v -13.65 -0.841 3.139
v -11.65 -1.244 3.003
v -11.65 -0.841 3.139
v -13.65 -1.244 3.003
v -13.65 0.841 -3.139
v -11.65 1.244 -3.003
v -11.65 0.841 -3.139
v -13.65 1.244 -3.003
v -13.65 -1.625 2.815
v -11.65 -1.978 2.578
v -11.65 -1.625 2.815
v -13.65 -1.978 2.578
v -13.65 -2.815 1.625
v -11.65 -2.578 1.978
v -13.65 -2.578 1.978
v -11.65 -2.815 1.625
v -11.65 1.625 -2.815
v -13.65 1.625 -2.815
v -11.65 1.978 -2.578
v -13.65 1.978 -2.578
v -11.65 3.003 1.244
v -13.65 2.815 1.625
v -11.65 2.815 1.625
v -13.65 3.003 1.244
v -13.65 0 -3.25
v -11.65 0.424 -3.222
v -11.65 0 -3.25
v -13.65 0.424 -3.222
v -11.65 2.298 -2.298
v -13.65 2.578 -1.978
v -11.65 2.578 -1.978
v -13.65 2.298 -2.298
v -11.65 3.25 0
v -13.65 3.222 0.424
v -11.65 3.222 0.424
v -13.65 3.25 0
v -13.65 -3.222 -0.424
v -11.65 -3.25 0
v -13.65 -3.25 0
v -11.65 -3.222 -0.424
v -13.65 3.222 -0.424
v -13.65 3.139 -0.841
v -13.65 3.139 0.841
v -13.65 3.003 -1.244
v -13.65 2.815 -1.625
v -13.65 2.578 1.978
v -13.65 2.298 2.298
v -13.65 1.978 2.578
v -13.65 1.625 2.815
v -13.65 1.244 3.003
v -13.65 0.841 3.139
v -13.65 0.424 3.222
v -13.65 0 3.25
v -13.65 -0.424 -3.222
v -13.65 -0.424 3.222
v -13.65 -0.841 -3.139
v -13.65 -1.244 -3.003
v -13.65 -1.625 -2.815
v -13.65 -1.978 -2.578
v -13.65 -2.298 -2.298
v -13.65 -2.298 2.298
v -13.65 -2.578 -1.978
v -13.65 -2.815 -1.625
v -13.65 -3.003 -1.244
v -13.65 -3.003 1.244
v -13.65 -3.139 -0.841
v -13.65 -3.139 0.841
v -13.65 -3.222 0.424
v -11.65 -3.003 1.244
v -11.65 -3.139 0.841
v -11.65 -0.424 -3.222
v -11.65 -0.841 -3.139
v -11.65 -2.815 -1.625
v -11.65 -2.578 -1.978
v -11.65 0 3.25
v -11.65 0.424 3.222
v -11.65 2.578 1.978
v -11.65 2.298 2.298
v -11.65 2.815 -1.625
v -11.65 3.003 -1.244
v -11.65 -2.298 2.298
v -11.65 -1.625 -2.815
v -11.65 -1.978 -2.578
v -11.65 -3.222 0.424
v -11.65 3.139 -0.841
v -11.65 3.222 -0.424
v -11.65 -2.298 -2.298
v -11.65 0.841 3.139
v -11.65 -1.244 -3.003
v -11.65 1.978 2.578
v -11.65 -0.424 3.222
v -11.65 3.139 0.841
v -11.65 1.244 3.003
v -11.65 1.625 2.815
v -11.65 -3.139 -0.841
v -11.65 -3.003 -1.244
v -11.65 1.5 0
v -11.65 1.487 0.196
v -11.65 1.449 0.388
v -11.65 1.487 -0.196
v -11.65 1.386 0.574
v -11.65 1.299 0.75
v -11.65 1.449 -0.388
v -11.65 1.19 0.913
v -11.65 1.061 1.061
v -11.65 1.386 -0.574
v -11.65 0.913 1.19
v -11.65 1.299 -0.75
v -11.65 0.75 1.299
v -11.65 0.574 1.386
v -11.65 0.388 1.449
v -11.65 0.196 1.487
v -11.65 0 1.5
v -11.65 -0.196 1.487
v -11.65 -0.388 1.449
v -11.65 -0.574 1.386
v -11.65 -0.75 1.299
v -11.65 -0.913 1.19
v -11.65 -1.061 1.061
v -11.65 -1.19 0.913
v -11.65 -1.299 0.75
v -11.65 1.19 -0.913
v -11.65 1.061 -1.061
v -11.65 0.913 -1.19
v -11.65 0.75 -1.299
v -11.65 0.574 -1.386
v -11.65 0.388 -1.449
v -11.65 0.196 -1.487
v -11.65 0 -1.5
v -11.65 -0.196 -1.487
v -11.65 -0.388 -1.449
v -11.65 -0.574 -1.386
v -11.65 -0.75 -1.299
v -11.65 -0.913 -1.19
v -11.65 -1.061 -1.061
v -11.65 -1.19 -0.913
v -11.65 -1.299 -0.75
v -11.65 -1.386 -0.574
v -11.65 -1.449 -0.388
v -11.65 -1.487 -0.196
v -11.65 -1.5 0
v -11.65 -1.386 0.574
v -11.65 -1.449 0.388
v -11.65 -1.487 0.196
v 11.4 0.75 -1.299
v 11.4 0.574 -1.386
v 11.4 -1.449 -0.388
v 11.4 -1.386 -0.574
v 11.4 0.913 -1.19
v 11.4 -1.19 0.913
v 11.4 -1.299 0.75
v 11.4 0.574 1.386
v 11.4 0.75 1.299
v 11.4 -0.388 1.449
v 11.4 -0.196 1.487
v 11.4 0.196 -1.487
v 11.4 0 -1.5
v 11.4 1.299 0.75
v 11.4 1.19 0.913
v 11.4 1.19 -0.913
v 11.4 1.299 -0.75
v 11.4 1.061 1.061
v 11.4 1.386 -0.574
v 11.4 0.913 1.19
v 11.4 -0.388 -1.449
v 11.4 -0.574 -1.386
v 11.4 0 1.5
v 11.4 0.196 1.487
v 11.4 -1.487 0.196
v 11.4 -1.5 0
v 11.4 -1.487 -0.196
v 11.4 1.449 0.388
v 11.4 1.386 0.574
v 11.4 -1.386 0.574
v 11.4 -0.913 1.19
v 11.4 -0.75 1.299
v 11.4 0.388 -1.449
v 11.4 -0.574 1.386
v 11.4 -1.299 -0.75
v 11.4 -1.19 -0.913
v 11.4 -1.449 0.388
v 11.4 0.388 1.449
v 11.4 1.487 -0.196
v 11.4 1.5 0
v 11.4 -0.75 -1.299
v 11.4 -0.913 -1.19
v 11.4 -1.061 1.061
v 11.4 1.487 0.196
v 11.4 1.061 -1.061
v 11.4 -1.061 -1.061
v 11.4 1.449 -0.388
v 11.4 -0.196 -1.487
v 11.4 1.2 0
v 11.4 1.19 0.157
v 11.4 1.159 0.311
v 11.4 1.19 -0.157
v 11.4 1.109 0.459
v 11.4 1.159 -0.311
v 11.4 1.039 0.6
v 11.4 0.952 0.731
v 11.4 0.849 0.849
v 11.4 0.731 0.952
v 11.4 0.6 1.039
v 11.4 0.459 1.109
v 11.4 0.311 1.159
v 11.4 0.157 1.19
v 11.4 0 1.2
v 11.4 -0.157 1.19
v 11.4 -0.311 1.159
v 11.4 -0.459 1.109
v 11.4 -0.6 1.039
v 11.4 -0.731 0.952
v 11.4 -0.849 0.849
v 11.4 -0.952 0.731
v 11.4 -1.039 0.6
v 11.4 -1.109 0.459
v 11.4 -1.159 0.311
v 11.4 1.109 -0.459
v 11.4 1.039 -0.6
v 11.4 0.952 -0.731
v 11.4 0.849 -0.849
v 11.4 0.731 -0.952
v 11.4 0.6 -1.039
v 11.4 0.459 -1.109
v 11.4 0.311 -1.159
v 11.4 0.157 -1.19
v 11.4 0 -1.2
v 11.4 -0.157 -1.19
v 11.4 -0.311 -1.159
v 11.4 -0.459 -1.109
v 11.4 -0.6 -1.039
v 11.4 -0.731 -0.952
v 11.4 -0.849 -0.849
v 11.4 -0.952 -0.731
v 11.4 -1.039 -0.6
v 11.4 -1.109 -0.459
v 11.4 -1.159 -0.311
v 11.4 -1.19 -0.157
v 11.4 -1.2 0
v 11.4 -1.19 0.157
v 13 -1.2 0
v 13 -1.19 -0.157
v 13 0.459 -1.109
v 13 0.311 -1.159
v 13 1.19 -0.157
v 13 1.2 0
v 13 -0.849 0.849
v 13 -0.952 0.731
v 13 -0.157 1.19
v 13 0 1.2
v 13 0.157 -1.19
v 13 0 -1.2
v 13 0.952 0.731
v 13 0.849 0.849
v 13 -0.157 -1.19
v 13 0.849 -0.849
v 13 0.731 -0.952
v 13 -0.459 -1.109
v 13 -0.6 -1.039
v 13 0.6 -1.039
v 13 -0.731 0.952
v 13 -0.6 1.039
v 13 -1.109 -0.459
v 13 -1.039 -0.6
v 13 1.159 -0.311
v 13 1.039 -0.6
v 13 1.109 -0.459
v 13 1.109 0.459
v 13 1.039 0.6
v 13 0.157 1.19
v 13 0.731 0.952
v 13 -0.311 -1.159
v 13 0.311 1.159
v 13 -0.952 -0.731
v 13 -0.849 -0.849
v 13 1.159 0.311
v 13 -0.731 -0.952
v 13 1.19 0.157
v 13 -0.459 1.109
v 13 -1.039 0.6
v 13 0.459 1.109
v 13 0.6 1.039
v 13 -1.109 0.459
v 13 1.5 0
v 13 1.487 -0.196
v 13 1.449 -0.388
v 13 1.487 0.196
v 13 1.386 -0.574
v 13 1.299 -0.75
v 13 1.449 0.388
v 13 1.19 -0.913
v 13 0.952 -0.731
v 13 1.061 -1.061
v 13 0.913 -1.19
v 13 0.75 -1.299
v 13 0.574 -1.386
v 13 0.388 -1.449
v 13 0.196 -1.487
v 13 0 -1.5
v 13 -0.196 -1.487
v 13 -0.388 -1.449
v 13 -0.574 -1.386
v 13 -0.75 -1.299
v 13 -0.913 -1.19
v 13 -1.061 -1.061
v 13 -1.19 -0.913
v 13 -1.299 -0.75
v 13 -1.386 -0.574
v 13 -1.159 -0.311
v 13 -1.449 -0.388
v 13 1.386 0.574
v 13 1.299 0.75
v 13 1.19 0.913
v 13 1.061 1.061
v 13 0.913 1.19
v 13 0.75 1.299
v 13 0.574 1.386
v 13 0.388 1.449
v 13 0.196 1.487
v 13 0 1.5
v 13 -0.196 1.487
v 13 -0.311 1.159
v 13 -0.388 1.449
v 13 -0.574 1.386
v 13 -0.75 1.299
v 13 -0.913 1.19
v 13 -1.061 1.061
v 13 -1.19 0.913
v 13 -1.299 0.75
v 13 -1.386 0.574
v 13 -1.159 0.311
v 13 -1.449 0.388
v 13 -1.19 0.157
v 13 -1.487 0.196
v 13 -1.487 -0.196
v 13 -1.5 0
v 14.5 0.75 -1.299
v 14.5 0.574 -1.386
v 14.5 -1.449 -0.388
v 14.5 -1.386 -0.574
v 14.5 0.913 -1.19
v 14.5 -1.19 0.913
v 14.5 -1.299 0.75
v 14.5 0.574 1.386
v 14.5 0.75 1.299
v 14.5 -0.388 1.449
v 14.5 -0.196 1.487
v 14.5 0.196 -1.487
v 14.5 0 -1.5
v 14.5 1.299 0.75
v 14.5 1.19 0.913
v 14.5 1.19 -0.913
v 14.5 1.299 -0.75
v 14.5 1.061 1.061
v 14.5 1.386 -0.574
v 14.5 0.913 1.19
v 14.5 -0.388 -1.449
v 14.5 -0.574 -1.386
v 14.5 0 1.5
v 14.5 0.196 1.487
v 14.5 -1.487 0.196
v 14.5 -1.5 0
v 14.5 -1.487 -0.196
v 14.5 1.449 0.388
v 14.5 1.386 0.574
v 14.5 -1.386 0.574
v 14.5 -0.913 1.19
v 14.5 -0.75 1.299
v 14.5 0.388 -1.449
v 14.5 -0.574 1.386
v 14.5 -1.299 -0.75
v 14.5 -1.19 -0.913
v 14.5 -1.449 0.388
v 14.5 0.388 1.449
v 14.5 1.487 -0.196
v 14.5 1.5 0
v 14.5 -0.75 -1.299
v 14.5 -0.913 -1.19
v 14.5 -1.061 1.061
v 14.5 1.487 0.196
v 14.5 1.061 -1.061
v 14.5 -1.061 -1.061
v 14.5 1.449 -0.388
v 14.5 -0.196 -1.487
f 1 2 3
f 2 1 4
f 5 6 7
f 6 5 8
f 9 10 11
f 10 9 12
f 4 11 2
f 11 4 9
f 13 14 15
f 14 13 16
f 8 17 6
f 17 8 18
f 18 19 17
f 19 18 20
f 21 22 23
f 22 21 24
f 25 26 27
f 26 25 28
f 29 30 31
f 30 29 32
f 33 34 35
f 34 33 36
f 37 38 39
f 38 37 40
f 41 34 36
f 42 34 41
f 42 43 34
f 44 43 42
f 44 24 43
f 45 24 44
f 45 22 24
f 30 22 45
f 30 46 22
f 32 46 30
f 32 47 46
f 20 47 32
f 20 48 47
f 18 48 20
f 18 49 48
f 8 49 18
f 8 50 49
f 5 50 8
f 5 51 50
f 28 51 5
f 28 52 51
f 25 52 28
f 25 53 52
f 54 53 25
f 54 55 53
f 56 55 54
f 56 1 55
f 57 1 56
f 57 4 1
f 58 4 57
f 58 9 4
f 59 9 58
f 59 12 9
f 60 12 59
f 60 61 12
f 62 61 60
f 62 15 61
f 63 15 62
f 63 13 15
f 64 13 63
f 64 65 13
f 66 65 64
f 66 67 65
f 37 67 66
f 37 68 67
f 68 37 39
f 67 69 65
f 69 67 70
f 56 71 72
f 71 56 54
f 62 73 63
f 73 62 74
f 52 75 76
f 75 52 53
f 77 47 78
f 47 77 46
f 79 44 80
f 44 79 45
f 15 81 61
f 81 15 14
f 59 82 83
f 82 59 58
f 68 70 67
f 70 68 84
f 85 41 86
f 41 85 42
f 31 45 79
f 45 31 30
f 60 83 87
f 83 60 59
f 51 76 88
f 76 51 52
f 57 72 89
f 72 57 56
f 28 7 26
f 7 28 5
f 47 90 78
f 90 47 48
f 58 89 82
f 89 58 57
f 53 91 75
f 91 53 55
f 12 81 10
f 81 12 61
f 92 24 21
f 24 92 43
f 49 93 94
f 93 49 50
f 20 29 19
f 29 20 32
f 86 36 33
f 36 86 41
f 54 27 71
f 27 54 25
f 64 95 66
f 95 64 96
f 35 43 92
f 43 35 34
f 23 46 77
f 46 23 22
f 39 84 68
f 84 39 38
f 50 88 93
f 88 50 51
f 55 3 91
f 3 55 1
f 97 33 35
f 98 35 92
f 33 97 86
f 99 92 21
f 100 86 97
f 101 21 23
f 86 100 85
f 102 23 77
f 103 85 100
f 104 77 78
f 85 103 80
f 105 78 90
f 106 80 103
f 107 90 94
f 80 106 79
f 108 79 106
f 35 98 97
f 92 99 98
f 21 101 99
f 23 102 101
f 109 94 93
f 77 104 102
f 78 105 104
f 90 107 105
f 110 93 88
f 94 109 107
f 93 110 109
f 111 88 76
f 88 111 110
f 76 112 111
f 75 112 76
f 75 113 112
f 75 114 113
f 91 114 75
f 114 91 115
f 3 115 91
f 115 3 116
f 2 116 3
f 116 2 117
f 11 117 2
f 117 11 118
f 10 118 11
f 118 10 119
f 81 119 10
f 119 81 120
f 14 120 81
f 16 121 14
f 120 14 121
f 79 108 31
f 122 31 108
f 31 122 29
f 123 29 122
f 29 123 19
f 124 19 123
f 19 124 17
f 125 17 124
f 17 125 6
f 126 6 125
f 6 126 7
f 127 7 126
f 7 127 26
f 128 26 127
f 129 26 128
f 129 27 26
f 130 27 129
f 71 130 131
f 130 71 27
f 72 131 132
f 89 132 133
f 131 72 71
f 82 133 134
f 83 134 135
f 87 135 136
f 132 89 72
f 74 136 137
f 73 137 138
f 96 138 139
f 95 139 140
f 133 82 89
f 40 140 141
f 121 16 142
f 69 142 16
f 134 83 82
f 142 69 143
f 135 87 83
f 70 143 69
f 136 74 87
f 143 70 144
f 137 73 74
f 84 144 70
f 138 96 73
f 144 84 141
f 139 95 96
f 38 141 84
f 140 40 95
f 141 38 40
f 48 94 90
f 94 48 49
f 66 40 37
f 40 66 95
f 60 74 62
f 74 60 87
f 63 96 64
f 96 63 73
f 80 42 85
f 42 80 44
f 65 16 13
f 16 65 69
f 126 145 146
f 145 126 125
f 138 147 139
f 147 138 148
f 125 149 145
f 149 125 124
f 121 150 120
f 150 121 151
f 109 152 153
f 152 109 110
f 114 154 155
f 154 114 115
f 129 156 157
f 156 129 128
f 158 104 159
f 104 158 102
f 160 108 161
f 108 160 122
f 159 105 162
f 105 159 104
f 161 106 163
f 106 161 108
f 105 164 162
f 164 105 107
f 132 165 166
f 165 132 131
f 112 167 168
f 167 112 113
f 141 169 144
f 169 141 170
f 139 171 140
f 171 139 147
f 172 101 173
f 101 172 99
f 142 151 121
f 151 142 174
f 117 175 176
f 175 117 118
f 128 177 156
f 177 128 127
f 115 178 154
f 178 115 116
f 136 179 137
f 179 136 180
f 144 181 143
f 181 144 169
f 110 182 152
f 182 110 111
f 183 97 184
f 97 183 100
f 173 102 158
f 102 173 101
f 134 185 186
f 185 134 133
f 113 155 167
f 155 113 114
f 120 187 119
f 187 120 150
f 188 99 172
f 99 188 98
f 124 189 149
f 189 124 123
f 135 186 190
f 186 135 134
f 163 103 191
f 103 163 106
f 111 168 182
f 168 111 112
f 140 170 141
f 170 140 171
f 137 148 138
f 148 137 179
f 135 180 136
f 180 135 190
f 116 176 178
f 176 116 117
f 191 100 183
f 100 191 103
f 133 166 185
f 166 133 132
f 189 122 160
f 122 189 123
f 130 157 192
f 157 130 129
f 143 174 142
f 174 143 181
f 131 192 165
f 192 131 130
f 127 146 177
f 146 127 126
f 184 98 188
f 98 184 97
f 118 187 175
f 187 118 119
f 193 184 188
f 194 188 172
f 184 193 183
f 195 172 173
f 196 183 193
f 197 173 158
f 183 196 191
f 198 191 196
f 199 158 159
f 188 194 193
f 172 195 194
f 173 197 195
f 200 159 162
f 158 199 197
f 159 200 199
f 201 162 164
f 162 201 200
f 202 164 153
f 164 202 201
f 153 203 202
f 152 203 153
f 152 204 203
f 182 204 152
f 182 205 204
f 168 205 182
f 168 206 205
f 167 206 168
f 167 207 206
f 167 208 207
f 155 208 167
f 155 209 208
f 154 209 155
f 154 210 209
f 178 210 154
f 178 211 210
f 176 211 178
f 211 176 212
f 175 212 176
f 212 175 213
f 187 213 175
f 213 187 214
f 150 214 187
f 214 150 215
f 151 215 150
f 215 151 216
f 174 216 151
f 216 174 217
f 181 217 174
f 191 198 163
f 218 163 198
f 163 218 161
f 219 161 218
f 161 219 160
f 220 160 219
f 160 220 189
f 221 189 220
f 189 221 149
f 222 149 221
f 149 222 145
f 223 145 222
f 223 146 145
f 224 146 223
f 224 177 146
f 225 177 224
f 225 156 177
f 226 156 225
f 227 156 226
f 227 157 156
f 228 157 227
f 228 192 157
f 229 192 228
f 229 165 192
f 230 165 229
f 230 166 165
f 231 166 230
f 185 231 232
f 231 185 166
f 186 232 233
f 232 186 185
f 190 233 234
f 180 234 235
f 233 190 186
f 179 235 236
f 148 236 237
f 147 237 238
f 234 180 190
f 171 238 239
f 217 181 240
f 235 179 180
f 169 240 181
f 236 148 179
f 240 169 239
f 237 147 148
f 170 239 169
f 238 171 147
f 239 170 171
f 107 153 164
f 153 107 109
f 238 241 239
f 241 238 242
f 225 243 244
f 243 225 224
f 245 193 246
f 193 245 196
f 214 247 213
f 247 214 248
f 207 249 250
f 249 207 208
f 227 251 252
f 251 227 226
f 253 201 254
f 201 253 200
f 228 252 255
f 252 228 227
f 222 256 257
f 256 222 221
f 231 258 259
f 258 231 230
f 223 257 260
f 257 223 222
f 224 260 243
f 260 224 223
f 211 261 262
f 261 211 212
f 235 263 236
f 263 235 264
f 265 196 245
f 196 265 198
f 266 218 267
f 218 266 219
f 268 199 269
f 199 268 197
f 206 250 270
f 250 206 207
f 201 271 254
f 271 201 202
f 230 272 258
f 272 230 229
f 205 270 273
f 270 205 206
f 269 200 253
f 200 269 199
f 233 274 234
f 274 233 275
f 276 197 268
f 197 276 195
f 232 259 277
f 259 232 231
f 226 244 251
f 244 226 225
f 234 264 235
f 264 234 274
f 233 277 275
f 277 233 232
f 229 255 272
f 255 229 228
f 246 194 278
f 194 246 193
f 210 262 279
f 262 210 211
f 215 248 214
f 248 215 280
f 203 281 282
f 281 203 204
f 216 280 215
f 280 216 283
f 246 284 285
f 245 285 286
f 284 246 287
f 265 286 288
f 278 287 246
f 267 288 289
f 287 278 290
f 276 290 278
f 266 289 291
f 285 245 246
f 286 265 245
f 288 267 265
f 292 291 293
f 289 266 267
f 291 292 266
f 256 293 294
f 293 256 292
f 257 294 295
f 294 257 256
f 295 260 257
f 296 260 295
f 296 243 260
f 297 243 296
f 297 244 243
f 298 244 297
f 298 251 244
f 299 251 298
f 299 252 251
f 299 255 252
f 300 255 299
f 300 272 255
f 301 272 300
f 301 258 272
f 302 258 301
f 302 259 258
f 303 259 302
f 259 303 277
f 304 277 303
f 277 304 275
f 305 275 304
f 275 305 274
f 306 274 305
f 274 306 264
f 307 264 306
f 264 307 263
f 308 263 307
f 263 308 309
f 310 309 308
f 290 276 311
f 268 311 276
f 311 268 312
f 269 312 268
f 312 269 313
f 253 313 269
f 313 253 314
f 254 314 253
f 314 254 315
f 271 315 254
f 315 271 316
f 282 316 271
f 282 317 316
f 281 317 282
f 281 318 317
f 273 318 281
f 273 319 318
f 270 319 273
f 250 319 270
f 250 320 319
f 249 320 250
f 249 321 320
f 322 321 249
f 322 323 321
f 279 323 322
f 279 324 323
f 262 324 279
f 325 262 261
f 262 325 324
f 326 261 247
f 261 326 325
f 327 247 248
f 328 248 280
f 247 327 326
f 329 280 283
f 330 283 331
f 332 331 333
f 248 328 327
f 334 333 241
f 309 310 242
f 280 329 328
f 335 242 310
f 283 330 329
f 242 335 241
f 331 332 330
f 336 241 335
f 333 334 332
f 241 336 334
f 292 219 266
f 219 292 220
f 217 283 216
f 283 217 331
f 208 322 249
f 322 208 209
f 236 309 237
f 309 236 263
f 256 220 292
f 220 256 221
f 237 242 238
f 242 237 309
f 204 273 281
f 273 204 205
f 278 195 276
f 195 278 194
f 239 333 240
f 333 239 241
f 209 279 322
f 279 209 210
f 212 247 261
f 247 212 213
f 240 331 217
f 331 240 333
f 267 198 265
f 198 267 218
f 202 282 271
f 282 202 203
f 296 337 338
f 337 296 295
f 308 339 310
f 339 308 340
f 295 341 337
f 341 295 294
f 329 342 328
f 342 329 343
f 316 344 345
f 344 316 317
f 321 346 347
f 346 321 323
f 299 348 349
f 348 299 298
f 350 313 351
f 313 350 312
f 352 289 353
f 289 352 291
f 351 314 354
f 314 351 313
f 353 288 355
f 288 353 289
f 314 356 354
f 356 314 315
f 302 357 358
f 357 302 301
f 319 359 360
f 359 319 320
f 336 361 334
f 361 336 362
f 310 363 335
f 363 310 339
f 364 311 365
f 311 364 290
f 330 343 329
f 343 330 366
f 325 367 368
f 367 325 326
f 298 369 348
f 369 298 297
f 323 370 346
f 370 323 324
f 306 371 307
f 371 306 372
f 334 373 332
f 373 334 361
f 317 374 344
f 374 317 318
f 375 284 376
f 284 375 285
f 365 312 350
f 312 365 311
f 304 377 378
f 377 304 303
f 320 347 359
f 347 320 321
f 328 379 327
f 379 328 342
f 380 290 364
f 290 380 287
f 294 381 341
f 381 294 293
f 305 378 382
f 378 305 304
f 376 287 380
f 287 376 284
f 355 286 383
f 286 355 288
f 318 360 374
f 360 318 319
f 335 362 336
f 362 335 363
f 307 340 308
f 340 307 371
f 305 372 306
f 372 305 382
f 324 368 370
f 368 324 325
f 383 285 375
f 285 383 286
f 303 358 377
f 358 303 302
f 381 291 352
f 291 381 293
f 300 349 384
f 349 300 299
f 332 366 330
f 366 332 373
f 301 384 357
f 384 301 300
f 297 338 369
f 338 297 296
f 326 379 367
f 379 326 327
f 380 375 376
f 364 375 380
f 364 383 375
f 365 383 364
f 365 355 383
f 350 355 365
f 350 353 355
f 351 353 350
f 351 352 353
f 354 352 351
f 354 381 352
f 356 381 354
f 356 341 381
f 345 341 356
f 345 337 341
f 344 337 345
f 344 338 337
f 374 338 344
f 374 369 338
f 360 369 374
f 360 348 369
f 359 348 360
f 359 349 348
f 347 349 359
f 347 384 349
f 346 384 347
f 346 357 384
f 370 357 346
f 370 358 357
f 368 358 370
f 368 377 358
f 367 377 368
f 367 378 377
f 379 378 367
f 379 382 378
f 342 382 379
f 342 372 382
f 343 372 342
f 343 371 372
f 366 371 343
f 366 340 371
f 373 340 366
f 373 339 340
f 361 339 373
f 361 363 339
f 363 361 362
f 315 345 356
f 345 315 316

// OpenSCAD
$fn=48;

module cyl_x(d,l,x0) {
    translate([x0,0,0]) rotate([0,90,0]) cylinder(d=d,h=l);
}

// V80 lead-nut retaining pin.
// Recalculated from the actual frozen V60/V80 BASE service geometry:
// head pocket -14.35..-11.65, clip pocket +11.20..+13.20,
// service path -14.35..+15.05.
//
// Released geometry:
// head  -13.65..-11.65  Ø6.50
// shaft -11.65..+11.40  Ø3.00
// groove +11.40..+13.00 Ø2.40
// tip    +13.00..+14.50 Ø3.00
// total length = 28.15 mm
//
// Matching V80 clip:
// ID Ø2.10, opening 1.60, OD Ø7.00, thickness 1.30.

union() {
    cyl_x(6.50,2.00,-13.65);
    cyl_x(3.00,23.05,-11.65);
    cyl_x(2.40,1.60,11.40);
    cyl_x(3.00,1.50,13.00);
}
